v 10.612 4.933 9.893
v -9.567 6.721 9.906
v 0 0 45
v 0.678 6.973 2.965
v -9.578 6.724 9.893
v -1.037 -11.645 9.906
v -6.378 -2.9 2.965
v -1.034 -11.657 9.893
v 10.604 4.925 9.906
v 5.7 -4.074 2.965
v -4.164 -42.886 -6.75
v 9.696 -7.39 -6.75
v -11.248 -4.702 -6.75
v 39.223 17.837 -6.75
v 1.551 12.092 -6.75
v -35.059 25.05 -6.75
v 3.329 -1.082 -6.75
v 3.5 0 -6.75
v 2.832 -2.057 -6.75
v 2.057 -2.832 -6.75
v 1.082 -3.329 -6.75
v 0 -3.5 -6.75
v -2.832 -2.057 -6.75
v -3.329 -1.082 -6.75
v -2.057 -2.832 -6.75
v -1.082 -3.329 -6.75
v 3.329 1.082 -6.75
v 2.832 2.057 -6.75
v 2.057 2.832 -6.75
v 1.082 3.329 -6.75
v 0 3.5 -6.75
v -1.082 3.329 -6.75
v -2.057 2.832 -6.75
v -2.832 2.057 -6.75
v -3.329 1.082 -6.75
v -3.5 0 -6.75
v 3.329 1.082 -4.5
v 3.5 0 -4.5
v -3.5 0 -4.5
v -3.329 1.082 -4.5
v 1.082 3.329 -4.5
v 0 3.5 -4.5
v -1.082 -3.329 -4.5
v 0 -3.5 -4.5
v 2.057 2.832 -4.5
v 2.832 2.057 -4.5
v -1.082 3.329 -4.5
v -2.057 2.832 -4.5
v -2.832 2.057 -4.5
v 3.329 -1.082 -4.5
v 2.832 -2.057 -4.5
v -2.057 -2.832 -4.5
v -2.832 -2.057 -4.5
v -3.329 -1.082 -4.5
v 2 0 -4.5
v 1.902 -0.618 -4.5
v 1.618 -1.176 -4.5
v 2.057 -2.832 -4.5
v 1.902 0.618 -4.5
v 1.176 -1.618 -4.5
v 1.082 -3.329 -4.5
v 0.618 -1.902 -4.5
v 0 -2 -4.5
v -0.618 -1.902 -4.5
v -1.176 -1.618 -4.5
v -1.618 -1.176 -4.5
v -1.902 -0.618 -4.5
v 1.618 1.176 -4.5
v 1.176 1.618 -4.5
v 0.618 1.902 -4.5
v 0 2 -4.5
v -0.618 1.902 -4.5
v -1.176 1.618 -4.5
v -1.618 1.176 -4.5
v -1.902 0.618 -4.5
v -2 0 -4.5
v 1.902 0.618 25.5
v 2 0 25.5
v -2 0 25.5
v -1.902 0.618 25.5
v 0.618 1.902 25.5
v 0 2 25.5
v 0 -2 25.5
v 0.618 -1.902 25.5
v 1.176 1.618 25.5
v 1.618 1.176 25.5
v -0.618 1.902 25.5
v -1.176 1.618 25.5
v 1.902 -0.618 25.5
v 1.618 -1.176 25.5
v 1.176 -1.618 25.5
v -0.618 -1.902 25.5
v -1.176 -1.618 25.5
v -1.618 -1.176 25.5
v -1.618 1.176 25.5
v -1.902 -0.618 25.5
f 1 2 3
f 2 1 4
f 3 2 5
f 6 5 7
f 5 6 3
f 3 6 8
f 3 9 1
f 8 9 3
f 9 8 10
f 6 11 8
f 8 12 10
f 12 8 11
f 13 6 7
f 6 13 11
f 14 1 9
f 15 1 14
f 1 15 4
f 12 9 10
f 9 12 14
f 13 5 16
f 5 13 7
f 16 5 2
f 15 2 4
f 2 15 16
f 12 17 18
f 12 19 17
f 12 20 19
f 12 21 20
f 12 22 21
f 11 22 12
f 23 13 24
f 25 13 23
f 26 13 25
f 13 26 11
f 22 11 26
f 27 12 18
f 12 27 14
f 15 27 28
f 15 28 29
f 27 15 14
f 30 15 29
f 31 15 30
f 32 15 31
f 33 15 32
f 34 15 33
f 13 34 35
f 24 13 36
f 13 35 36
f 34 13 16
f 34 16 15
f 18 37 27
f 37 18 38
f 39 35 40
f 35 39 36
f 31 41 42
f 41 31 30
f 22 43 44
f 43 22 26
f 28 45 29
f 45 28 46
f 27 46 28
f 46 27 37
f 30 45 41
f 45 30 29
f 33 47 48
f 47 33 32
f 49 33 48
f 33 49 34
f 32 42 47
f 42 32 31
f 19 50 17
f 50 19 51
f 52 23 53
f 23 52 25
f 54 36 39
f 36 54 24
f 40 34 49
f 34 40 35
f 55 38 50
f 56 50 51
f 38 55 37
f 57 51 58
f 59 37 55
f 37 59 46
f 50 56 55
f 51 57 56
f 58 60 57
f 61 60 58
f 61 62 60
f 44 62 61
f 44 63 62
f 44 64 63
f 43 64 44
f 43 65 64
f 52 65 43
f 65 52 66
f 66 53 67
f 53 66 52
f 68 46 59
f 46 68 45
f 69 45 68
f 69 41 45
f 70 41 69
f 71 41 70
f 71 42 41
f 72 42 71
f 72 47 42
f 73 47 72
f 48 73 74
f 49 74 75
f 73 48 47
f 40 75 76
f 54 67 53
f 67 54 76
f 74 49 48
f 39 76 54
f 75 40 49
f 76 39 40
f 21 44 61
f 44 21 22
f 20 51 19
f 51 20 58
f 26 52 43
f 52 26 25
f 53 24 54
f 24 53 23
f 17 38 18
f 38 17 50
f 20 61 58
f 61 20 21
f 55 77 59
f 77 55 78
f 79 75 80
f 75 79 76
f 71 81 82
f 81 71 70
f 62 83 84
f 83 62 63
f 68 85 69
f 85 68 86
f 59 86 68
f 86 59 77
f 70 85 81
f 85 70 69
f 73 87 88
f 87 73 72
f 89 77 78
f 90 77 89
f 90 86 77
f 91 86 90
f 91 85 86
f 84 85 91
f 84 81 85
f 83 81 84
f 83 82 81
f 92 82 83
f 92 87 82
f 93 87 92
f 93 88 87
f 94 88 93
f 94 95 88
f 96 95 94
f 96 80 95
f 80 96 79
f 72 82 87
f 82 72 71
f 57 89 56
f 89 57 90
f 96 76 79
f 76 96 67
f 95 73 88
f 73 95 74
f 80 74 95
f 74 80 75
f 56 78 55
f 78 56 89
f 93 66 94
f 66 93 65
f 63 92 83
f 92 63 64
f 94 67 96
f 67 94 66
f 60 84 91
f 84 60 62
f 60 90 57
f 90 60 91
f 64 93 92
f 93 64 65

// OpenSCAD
height = 30;
width = 10;
scale_factor = 1.5;
difference(){
    scale([scale_factor,scale_factor,scale_factor]){
        difference(){
            union(){
                // top spike
                rotate([0, 0, 24.93]) cylinder(height, width, 0, $fn=3);
                // -Y spike
                rotate([0, height, 0]) rotate([101, 0, 0]) cylinder(height, width, 0, $fn=3);
                // +X spike
                rotate([0, 0, 120]) rotate([0, height, 0]) rotate([101, 0, 0]) cylinder(height, width, 0, $fn=3);
                // -X spike
                rotate([0, height, -120]) rotate([101, 0, 0]) cylinder(height, width, 0, $fn=3);
            }
            // smooth out the bottom face for ease of printing
            translate([0, 0, -49.5]) cube([90, 90, 90], center=true) ;
        }
    }
    
    offset = 0;
    // hole for a long M3 button head screw to provide reinforcement along
    // fragile top spike
    union(){
        translate([offset, offset, -9.5]) cylinder(5, 3.5, 3.5, $fn=20);
        translate([offset, offset, -9.5]) cylinder(35, 2, 2, $fn=20);
    }
}
